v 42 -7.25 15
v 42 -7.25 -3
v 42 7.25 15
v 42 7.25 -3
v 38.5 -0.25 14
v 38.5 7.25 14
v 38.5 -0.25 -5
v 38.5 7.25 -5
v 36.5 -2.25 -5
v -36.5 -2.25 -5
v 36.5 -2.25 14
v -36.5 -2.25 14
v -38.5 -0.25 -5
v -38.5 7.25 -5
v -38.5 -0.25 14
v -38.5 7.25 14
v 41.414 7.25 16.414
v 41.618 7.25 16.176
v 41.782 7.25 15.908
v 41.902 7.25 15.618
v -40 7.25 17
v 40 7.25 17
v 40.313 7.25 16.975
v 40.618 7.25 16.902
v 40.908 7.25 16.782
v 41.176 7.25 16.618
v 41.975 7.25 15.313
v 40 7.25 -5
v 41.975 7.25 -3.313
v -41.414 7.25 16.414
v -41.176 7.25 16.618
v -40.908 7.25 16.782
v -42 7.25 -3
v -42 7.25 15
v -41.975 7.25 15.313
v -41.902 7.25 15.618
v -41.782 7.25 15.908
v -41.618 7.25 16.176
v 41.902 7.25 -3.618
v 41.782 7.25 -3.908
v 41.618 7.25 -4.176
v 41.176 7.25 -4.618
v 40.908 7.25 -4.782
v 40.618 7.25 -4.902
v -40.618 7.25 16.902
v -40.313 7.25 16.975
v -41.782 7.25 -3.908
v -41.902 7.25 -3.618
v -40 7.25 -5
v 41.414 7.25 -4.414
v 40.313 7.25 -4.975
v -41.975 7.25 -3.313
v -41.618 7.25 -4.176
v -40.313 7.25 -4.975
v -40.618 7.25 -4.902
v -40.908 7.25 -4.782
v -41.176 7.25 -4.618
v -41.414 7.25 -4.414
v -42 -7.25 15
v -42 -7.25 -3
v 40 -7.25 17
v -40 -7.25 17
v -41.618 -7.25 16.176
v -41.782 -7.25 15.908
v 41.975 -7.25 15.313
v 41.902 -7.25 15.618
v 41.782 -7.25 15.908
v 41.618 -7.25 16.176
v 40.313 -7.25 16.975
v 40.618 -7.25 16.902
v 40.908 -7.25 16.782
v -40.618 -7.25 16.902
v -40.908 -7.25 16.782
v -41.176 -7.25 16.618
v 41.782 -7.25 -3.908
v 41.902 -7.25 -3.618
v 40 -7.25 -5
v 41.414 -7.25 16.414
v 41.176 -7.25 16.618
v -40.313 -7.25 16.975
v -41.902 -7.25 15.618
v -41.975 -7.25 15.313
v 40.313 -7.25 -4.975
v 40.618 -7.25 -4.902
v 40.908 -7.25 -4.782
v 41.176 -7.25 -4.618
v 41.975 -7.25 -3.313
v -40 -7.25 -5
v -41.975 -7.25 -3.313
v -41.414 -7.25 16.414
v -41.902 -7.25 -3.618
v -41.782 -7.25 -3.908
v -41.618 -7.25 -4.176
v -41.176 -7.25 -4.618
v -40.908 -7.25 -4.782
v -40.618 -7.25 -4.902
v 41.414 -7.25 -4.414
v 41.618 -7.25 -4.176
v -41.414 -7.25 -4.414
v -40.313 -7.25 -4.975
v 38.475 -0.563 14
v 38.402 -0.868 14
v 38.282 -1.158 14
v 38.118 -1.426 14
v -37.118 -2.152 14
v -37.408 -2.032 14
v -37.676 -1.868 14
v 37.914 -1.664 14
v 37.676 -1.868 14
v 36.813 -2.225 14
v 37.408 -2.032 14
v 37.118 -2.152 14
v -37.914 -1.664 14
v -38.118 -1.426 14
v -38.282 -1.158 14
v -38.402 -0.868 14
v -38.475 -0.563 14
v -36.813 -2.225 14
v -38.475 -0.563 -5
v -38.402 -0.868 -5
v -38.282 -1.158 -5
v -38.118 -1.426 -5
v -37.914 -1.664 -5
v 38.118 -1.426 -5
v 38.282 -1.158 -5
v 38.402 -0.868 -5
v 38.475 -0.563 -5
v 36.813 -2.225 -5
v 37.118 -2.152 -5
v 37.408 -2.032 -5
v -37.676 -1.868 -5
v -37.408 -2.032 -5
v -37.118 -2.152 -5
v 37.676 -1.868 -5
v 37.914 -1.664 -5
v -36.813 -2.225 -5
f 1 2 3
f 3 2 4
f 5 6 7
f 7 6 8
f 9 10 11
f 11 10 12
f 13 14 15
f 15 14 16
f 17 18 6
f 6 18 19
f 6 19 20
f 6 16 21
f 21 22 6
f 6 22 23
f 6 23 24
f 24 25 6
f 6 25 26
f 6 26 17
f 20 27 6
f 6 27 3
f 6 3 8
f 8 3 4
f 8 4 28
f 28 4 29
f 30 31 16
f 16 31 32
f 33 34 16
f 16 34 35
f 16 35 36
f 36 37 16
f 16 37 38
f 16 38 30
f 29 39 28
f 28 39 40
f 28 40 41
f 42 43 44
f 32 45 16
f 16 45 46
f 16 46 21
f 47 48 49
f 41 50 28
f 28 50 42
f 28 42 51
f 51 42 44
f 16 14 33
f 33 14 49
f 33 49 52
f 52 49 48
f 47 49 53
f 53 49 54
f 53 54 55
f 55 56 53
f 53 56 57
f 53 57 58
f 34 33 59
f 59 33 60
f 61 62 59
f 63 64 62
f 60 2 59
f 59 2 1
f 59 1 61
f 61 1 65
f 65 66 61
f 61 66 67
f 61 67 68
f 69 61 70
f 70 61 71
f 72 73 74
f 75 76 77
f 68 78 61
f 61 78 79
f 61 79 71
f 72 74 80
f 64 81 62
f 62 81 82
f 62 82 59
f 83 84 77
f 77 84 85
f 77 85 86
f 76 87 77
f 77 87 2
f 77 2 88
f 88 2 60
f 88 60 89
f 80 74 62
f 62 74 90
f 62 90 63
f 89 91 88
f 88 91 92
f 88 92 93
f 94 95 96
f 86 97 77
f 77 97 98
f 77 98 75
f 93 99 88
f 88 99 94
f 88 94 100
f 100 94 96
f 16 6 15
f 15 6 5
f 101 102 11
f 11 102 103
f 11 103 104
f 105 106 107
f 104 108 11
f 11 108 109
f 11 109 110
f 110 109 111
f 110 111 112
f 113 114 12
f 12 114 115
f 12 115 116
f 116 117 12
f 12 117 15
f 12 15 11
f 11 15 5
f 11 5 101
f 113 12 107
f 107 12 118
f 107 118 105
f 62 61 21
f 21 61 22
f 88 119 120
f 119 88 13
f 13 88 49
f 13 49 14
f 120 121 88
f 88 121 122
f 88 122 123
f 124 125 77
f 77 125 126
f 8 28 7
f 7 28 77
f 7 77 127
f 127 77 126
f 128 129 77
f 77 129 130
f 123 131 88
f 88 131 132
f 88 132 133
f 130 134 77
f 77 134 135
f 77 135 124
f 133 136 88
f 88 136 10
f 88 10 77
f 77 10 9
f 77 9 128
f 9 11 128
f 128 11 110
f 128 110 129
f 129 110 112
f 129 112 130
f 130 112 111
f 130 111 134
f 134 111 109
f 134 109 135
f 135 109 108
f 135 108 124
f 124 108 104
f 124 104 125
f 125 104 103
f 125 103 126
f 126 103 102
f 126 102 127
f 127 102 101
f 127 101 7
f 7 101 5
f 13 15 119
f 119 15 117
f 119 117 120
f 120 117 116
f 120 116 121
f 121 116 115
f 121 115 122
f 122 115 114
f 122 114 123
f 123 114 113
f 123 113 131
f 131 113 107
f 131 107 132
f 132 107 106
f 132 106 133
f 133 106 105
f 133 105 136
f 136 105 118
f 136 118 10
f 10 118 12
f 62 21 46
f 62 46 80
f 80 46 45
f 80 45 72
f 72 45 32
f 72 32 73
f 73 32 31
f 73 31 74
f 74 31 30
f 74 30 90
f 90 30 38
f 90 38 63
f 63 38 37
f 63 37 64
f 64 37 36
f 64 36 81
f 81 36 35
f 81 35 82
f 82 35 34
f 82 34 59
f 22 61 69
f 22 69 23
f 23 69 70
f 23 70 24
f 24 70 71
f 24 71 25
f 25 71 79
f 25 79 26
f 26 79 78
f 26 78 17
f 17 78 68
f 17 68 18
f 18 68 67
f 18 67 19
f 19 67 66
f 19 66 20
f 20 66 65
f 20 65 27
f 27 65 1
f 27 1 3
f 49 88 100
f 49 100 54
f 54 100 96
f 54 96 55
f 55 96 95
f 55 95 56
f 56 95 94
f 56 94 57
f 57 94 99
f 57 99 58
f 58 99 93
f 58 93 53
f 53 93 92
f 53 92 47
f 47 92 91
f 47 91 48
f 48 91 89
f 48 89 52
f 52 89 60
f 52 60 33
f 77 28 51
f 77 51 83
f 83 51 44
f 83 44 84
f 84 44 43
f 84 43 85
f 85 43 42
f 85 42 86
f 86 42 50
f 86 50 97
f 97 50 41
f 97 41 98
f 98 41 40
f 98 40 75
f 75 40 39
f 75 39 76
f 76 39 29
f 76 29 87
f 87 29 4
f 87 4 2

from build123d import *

# Parameters (mm, degrees)
SALIENTE_EXTRUIR1_DEPTH = 14
CROQUIS7_W              = 84
CROQUIS7_H              = 14.5
SALIENTE_EXTRUIR6_DEPTH = 3
SALIENTE_EXTRUIR7_DEPTH = 5
REDONDEO1_R             = 2


with BuildPart() as part:
    # Croquis1 → Saliente-Extruir1 (new body)
    with BuildSketch(Plane.XY):
        Polygon((-38.5, 7.25), (-42, 7.25), (-42, -7.25), (42, -7.25), (42, 7.25), (38.5, 7.25), (38.5, -2.25), (-38.5, -2.25), align=None)
    extrude(amount=SALIENTE_EXTRUIR1_DEPTH)

    # Croquis7 → Saliente-Extruir6 (add)
    with BuildSketch(Plane.XY.offset(14)):
        Rectangle(CROQUIS7_W, CROQUIS7_H)
    extrude(amount=SALIENTE_EXTRUIR6_DEPTH)

    # Croquis8 → Saliente-Extruir7 (add)
    with BuildSketch(Plane(origin=(0, 0, 0), x_dir=(-1, 0, 0), z_dir=(0, 0, -1))):
        Polygon((-42, 7.25), (-42, -7.25), (42, -7.25), (42, 7.25), (38.5, 7.25), (38.5, -2.25), (-38.5, -2.25), (-38.5, 7.25), align=None)
    extrude(amount=SALIENTE_EXTRUIR7_DEPTH)

    # Redondeo1
    redondeo1_edges = [part.edges().sort_by_distance(p)[0] for p in [
        (-38.5, -2.25, 4.5),
        (38.5, -2.25, 4.5),
        (-42, 0, 17),
        (42, 0, 17),
        (42, 0, -5),
        (-42, 0, -5),
    ]]
    fillet(redondeo1_edges, radius=REDONDEO1_R)


solid = part.part
